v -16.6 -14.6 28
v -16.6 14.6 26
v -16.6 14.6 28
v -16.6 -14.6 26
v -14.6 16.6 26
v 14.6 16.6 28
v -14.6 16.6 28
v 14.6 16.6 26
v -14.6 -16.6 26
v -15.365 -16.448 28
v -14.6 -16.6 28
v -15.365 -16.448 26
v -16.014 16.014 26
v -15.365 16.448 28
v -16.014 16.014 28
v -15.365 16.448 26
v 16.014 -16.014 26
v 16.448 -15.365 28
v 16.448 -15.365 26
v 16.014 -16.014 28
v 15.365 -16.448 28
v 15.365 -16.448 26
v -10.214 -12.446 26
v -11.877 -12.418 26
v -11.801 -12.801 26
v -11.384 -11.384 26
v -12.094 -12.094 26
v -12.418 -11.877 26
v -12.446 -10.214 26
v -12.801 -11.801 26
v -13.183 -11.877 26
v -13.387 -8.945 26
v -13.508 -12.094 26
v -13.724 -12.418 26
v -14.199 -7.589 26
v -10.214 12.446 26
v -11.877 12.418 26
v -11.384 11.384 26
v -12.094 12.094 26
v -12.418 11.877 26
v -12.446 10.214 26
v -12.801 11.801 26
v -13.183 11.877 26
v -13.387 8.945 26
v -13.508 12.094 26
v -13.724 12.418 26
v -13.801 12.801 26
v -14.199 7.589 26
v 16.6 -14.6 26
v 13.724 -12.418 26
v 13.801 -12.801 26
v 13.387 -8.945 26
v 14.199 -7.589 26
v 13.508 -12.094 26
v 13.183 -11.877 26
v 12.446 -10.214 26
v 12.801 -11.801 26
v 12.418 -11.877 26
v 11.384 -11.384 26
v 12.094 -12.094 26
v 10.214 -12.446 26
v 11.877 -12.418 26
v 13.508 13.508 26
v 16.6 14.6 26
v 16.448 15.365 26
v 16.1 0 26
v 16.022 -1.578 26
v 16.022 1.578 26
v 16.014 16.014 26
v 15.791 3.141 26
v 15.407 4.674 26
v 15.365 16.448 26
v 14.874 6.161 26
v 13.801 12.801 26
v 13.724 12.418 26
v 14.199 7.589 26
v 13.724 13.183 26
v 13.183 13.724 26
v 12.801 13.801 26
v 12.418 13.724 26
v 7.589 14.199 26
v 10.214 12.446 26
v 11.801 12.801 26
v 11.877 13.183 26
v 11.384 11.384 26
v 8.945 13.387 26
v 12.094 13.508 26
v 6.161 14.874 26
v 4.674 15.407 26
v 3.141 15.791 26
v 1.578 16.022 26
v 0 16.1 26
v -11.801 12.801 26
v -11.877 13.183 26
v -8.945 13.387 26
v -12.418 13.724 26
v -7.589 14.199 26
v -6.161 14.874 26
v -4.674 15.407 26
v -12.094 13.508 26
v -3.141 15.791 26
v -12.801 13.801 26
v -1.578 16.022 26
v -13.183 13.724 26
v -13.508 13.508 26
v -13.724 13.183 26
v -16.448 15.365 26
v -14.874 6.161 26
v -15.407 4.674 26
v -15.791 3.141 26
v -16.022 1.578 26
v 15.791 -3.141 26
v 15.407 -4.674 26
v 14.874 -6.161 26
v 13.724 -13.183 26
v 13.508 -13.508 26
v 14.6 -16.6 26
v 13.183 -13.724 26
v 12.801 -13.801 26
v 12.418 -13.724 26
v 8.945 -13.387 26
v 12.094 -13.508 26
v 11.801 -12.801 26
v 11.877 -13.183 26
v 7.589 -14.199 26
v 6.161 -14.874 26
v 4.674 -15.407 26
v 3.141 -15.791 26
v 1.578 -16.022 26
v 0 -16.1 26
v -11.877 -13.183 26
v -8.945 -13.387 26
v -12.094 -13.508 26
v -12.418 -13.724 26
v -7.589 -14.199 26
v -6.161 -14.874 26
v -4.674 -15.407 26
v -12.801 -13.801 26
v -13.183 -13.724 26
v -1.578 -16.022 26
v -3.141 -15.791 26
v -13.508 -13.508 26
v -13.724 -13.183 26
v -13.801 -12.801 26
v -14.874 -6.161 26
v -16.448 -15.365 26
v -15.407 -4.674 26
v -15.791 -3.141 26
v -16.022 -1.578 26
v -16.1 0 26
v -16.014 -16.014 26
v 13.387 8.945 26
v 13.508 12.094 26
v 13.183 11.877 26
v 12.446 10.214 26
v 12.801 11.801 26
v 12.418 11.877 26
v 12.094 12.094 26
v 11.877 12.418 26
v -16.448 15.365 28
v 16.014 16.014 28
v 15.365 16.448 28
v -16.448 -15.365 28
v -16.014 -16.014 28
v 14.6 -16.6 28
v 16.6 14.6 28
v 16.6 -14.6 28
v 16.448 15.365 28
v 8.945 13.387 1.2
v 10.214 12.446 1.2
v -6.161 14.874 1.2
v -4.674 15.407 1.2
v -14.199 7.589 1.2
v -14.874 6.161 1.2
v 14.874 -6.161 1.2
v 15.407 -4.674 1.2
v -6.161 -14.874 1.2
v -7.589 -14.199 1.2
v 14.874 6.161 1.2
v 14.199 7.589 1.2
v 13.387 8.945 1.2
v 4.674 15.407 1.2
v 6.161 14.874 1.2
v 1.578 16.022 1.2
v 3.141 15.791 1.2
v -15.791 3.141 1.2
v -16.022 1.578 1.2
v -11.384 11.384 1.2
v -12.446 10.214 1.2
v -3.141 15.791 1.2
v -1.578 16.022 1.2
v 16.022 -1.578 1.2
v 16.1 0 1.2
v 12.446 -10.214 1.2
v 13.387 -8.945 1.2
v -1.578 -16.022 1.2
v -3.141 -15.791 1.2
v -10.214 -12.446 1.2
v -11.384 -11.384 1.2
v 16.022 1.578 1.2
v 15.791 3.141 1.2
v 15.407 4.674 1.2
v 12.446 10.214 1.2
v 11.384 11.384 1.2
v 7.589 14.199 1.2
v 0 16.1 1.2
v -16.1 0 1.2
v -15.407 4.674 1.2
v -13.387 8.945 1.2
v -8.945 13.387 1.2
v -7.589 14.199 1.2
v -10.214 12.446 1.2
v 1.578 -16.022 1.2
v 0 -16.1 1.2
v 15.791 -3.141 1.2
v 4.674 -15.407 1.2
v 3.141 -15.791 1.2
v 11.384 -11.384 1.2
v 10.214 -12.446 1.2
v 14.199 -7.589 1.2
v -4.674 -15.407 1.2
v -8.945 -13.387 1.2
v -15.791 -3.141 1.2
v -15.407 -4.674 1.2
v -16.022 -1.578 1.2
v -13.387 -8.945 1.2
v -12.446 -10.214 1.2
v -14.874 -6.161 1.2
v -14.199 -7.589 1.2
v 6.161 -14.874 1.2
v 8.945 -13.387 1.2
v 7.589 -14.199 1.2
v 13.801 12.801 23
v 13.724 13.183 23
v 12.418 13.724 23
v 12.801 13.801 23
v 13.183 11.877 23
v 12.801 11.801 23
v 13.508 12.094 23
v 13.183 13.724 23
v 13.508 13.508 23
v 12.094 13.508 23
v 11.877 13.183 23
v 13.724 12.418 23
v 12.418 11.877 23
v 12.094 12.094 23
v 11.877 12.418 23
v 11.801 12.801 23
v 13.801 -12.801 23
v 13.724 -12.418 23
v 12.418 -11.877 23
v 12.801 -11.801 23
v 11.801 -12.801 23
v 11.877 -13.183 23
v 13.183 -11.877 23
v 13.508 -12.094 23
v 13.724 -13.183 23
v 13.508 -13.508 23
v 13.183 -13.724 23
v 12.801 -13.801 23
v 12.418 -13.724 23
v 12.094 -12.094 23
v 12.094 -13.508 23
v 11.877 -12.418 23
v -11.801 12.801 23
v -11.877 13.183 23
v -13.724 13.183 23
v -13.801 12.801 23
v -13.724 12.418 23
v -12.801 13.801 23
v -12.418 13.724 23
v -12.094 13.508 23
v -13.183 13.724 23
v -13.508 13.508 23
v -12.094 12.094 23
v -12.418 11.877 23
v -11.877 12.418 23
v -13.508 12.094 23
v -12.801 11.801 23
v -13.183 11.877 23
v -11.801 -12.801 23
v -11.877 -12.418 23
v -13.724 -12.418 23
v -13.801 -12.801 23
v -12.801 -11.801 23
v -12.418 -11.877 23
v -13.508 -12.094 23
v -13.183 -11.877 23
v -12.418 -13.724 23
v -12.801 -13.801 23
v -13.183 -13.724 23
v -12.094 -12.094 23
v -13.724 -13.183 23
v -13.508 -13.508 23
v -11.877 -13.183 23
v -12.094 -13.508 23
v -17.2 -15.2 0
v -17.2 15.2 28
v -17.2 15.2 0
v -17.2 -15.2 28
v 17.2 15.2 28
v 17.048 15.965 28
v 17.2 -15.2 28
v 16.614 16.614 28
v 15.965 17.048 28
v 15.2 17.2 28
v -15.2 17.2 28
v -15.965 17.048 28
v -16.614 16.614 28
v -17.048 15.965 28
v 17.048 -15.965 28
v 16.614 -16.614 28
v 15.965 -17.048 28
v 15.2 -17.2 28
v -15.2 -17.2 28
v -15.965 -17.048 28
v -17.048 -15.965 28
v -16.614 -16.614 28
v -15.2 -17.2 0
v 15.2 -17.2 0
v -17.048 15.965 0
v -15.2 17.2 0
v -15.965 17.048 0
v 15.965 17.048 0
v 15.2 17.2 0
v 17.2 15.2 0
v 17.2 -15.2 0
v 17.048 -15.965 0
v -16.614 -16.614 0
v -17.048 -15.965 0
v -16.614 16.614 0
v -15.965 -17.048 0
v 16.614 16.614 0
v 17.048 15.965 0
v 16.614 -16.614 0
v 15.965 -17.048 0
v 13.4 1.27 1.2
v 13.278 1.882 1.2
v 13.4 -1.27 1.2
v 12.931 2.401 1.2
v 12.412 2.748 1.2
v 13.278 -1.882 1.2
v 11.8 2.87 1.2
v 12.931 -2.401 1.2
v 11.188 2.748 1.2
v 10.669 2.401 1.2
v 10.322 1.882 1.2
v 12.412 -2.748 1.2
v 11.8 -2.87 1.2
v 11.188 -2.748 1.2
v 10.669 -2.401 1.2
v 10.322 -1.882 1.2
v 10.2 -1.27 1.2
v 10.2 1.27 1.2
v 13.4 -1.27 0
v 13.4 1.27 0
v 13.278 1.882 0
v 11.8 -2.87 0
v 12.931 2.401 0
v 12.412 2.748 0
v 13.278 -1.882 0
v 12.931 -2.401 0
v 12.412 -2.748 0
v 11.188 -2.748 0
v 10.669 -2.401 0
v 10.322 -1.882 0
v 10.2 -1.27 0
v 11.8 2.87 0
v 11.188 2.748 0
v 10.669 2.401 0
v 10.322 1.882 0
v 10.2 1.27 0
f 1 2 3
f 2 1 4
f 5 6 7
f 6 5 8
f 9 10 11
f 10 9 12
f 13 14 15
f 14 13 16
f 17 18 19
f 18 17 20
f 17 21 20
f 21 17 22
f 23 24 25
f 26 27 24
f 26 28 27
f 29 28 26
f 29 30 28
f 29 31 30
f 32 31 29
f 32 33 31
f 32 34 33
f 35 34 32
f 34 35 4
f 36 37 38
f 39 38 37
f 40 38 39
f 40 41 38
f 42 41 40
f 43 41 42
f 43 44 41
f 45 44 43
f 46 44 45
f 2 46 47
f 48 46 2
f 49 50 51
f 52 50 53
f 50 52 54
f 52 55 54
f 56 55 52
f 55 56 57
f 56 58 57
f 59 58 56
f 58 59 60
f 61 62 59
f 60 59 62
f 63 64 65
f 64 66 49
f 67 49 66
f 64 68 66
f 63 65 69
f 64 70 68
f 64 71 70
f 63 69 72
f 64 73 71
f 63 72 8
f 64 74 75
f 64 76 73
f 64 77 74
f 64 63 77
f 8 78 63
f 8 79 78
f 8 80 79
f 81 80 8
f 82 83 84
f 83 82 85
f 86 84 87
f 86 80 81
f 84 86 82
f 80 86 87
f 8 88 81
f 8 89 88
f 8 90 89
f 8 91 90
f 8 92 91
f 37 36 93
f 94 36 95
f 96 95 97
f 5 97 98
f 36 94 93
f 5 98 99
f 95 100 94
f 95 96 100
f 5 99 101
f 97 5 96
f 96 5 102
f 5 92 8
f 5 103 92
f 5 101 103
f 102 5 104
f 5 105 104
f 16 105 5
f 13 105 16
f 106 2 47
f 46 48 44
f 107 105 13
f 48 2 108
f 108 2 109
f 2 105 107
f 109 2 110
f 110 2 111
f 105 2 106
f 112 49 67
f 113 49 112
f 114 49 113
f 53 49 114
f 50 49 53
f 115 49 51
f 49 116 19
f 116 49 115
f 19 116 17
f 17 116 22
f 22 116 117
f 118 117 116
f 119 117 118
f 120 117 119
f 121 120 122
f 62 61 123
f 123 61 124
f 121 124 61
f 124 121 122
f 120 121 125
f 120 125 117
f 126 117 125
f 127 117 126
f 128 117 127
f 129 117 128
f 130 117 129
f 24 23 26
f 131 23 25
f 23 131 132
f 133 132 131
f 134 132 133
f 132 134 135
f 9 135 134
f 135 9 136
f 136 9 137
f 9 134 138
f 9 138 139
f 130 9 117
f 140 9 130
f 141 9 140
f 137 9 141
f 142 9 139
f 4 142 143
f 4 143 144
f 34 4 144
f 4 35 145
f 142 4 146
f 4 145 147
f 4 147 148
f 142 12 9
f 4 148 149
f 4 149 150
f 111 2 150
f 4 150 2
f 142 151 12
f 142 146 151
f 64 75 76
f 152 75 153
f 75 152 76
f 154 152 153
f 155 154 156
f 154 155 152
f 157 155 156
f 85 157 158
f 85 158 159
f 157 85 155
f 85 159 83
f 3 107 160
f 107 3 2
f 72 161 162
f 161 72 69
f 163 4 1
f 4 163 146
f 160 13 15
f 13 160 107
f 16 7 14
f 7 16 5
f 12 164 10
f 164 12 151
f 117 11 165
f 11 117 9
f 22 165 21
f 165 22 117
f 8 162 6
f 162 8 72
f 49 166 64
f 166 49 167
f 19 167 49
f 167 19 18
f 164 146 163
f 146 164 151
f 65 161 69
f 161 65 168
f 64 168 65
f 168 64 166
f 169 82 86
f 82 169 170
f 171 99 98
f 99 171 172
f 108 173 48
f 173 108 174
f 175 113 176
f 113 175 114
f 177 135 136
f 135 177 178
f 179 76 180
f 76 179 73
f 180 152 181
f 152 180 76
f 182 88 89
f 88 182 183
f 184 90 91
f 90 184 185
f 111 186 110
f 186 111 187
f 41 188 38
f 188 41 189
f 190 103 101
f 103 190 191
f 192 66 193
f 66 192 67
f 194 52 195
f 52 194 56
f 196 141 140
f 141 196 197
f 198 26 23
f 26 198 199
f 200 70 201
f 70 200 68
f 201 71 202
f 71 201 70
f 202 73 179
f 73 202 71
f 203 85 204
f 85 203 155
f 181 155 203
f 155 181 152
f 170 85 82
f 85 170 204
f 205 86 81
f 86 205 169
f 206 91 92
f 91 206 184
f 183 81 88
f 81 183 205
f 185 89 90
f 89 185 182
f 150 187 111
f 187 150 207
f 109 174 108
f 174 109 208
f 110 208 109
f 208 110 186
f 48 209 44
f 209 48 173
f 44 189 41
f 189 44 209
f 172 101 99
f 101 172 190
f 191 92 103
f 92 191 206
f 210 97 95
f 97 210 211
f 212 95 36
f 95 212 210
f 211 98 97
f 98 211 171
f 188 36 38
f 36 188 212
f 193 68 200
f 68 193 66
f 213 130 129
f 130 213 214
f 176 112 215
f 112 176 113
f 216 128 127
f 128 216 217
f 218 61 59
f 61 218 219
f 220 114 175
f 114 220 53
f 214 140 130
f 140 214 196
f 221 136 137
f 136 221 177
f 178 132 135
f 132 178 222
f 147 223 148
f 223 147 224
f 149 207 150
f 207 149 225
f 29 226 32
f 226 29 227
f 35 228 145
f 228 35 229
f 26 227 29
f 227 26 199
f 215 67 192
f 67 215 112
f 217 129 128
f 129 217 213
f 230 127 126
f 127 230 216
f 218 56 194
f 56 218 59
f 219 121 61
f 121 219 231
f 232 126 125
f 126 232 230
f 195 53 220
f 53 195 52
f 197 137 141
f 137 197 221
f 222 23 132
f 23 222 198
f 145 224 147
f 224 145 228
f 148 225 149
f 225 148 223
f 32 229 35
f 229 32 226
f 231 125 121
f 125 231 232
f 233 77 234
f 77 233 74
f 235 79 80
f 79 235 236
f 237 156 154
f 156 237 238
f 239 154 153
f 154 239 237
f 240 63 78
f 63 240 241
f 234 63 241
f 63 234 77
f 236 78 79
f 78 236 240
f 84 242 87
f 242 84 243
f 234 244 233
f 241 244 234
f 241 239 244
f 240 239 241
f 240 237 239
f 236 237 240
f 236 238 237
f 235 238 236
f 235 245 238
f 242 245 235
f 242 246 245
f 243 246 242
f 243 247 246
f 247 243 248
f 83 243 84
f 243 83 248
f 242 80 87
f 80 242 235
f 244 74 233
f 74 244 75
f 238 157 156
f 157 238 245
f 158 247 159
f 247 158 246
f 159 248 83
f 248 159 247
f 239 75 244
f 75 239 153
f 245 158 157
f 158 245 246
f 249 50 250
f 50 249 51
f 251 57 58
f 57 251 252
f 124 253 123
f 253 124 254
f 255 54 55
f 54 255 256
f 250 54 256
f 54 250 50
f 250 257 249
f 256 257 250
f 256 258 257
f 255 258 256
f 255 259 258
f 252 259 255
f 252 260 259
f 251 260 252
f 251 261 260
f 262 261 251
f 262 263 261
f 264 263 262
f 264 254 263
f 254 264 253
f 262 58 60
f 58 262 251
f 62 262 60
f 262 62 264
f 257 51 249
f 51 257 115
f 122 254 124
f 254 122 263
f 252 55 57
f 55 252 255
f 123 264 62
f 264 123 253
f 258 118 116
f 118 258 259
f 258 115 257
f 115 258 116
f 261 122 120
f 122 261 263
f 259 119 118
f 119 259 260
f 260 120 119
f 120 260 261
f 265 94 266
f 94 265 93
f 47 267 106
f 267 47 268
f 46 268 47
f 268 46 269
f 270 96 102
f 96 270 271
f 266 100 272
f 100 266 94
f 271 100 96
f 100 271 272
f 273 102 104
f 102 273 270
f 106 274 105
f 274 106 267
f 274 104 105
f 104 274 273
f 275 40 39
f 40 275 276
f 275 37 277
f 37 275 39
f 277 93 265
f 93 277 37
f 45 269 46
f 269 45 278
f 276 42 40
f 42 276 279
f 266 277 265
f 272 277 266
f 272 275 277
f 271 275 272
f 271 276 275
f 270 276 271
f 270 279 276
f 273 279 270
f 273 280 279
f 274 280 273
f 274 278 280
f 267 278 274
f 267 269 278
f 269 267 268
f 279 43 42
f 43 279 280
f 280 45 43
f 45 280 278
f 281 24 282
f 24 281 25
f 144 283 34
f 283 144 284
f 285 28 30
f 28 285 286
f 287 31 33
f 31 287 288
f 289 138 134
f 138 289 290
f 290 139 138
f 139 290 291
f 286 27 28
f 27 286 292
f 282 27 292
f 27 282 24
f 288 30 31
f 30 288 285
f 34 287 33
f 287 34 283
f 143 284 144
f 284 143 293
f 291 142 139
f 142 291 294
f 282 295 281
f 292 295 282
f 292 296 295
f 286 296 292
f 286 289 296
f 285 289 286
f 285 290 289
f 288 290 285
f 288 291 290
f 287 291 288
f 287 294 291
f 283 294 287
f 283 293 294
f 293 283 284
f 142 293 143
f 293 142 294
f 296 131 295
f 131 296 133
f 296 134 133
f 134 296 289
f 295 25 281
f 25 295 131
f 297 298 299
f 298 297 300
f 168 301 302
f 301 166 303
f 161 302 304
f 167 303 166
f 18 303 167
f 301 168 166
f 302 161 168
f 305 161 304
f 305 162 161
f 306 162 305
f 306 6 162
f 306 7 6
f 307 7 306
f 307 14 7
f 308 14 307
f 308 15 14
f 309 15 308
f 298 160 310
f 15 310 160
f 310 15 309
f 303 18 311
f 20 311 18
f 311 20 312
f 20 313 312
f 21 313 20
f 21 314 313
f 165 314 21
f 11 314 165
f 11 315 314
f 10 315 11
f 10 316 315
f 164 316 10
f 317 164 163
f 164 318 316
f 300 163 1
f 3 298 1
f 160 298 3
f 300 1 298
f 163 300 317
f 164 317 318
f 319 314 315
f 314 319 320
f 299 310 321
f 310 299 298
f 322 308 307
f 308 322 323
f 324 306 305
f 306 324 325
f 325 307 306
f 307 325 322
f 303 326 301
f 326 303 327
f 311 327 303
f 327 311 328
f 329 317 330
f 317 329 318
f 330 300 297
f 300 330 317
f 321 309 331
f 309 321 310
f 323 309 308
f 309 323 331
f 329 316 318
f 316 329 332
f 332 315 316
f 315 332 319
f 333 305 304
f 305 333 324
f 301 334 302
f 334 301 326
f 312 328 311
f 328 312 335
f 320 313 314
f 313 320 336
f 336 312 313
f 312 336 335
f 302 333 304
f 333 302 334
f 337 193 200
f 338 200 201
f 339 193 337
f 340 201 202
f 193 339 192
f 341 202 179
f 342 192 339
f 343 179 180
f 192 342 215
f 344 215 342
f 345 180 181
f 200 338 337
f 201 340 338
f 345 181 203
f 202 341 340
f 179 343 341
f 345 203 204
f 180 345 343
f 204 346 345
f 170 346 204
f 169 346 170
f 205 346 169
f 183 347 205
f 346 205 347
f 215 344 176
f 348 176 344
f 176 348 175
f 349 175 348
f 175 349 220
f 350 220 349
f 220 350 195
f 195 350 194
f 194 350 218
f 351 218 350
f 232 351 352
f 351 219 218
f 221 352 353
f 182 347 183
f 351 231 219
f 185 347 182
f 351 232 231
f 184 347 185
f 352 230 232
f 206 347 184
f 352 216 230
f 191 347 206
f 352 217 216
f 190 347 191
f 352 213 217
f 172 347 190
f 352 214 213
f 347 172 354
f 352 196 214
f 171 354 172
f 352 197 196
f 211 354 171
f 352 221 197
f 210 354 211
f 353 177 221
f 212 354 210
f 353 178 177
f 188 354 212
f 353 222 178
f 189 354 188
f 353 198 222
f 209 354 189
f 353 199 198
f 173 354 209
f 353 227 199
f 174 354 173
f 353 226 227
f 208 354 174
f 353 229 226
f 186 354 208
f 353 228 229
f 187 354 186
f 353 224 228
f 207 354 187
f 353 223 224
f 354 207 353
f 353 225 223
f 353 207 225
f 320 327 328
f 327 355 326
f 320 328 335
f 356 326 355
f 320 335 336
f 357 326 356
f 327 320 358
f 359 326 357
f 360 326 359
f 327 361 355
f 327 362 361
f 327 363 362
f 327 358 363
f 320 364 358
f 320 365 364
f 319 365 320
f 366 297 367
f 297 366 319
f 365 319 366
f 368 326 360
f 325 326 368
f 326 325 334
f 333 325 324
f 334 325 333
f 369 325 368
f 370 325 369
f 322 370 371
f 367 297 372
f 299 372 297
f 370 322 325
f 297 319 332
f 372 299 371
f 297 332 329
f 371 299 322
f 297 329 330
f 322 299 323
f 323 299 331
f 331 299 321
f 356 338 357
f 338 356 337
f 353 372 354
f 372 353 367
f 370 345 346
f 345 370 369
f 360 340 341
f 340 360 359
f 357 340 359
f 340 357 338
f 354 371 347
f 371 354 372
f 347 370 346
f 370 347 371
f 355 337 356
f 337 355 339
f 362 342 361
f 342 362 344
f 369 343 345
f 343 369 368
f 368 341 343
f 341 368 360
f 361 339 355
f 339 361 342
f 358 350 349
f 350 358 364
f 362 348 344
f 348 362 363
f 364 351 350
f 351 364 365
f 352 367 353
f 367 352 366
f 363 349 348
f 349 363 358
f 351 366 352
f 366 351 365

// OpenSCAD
// file: speaker_stand.scad
//
// Speaker Stand
//
// by Yasuhiro Wabiko
//
// This work is licensed under a Creative Commons Attribution 4.0 International License.
// https://creativecommons.org/licenses/by/4.0/
//
use <prim.scad>

default_stand_z =40;
default_base_x = 36;
default_base_y = 36;
default_base_z = 4;
default_base_r = 2;
default_pole_r = 4; // pole body radius
default_pole_z = 36;
default_pole_rr = 1; // pole corner radius
default_joint_z = 2;
default_joint_extra_z = 0;
default_joint_r = 3;


WELDING = 0.1;

// render target; this is meant to be overriden by Makefile
TARGET="default";

//
// top level logic
//
speaker_stand_main();

module speaker_stand_main(target=TARGET){
    
    if (target == "default") {
        speaker_stand(stand_z=40, base_x=30, base_y=30, pole_r=8);
    }

    if (target == "ce32a") {
        speaker_stand(stand_z=40, base_x=(36-2)*0.8, base_y=(36-2)*0.8, pole_r=4);
    }

    if (target == "ce32a_type2") {
        speaker_stand(stand_z=40, base_x=(33.2-2)*0.8, base_y=(33.2-2)*0.8, pole_r=4);
    }

    if (target == "b1s") {
        speaker_stand(stand_z=40, base_x=(40-2)*0.8, base_y=(40-2)*0.8, pole_r=4);
    }

    if (target == "ce32a_tallboy") {
        speaker_stand(stand_z=40, base_z=0, pole_r=18, base_x=32*0.8, base_y=32*0.8);
    }

    if (target == "b1s_tallboy") {
        speaker_stand(stand_z=40, base_x=(40-2)*0.8, base_y=(40-2)*0.8, pole_r=4);
    }

}

// [Public]
// A speaker stand.
//
// stand_z = total height (= base height + pole height) i.e how high the speaker is put from the ground.
// (base_x, base_y, base_z, base_r) = stand base dimension
// (joint_z, joint_r) = joint configuration
// pole_r = pole radius
//
// NOTE: pole height is generated by total height - base_height.
module speaker_stand(stand_z = default_stand_z,
                     base_x = default_base_x,
                     base_y = default_base_y,
                     base_z = default_base_z,
                     base_r = default_base_r,
                     joint_r = default_joint_r,
                     joint_z = default_joint_z,
                     pole_r = default_pole_r,
                     pole_rr = default_pole_rr) {

    pole_z = stand_z-base_z;

    speaker_stand_unit(stand_z = stand_z,
                       base_x = base_x,
                       base_y = base_y,
                       base_z = base_z,
                       base_r = base_r,
                       joint_r = joint_r,
                       joint_z = joint_z,
                       pole_r = pole_r,
                       pole_z = pole_z,
                       pole_rr = default_pole_rr );
}

// (for testing) when you want to override design parameters in detail
module speaker_stand_unit(stand_z = default_stand_z,
                          base_x = default_base_x,
                          base_y = default_base_y,
                          base_z = default_base_z,
                          base_r = default_base_r,
                          joint_r = default_joint_r,
                          joint_z = default_joint_z,
                          joint_extra_z  = default_joint_extra_z,
                          pole_r = default_pole_r,
                          pole_z = default_pole_z,
                          pole_rr = default_pole_rr,
                          joint_fn = 32,
                          pole_fn = 64,
                          base_fn = 64,
                          clip_z = 0.6) {
    clip_r = joint_r;
    
    translate([0, 0, 0]) {
        // base plate
        translate([0, 0, base_z/2]) {
            prim_round_zplate0(base_x, base_y, base_z, base_r, base_fn);
        }

        translate([0, 0, pole_z/2]) {
            difference() {
                union() {
                    // pole (inner joint)
                    translate([0, 0, pole_z/2+joint_z/2-WELDING+clip_z/2]) {
                        cylinder(r = joint_r, $fn = joint_fn, h = joint_z+WELDING+clip_z, center=true);
                    }

                    // clip
                    translate([0, 0, pole_z/2+joint_z+clip_z/2]) {
                        minkowski() {
                            cylinder(r = clip_r, $fn = joint_fn, h = 0.2, center=true);
                            sphere(r=0.2, $fn=32);
                        }
                    }
                }
                union() {
                    // slits for easier joint 
                    translate([0, 0, pole_z/2]) {
                        for (i=[0:1:7]) {
                            rotate([0,0,45*i]) {
                                cube([8, 0.4, joint_z*6], center=true);
                            }
                        }
                    }

                    // pole (empty inside)
                    translate([0, 0, pole_z/2+joint_z/2-WELDING+clip_z/2]) {
                        //    cylinder(r = joint_r-0.5, $fn = joint_fn, h = joint_z+WELDING*4+clip_z, center=true);
                    }
                }
            } // difference

            // pole (outer)
            translate([0, 0, base_z/2-WELDING]) {
                //cylinder(r = pole_r, $fn = pole_fn, h = pole_z-base_z+WELDING, center=true);
                prim_round_zplate0(pole_r*2, pole_r*2, pole_z-base_z+WELDING, pole_rr, 32);
            }

            // pole (joint's inner stuffing for more strength)
            translate([0, 0, pole_z/2+joint_z/2-WELDING+clip_z/2]) {
                cylinder(r = clip_r-1, $fn = joint_fn, h = joint_z+WELDING+clip_z, center=true);
            }
        }
    }
}
// main file
//
// CE32A 1" Speaker Enclosure Type2 Rev.1
//
// by Yasuhiro Wabiko
//
// This work is licensed under a Creative Commons Attribution 4.0 International License.
// https://creativecommons.org/licenses/by/4.0/
//

use <speaker_stand.scad>
use <prim.scad>

// inner size of the box
size_x = 32+1.2;
size_y = 32+1.2;
size_z = 26;

// stand
stand_z = 40; // stand height

// other driver body sizes
driver_mount_thick = 2;
driver_mount_r  = 1.0;
driver_mount_r0 = 35+1.2;

// speaker wall sizes
wall_back_thick = 1.2;
wall_thick = 1.2;
wall_r = 2;

// design parameters
spfn_small  = 8;
spfn_medium = 16;
spfn_large  = 64;

// internal parameters
WELDING = 1; // offset to make sure two adjacent models welded.


// render target; this is meant to be overriden by Makefile
TARGET="default";

//
// top level logic
//
ce32a_main();

module ce32a_main(target=TARGET){
    
    if (target == "default") {
        ce32a(with_stand=0);
    }

    if (target == "with_stand") {
        ce32a(with_stand=1);
    }
}


module ce32a(with_stand=0){
    translate([0, 0, WELDING])
        ce32a_shell(size_x, size_y, size_z+WELDING, wall_r, wall_thick,
                        driver_mount_thick, driver_mount_r0, driver_mount_r,
                        spfn_small, spfn_medium, spfn_large, with_stand=with_stand);

    translate([0, 0, 0])
        #ce32a_backplate(size_x, size_y, wall_back_thick, wall_r, wall_thick,
                             driver_mount_thick, driver_mount_r0, driver_mount_r,
                             spfn_small, spfn_medium, spfn_large);

    if (with_stand) {
        translate([size_x+4,0,0]){
            speaker_stand(stand_z=40, base_x=(size_x-2)*0.8, base_y=(size_y-2)*0.8, base_z=4);
        }
    }
}


module ce32a_backplate(sx, sy, sz, wr, wt, dmt, dmr0, dmr,
                           fns, fnm, fnl){
    difference(){
        ce32a_round_hplate(sx+wt, sy+wt, sz, wr, fnm);
        #ce32a_backplate_negative_volume(sx, sy, sz, wt, fnm);
    }
}

module ce32a_backplate_negative_volume(sx, sy, sz, wt, fnm){
    // cable hole
    hull(){
        translate([sx/2+wt-6, 2.54/2, 0])
            cylinder(r=3.2/2, h=4, $fn=fnm, center=true);
        translate([sx/2+wt-6, -2.54/2, 0])
            cylinder(r=3.2/2, h=4, $fn=fnm, center=true);
    }
}

module ce32a_shell(sx, sy, sz, wr, wt, dmt, dmr0, dmr,
                       fns, fnm, fnl, with_stand=1){
    dd = dmr0/1.414/2; // 1.414 = sqrt(2); y- and z-axis distance from center to mount holes

    difference(){
        // outer shell
        ce32a_round_hplate(sx+wt, sy+wt, sz, wr, fnm);
        union() {
            // room for stuffing
            translate([0, 0, sz-dmt]) {
                ce32a_round_hplate(sx, sy, dmt+WELDING, wr, fnm);
            }

            // speaker driver hole
            translate([0, 0, 0])
                cylinder(r=32.2/2,h=sz+WELDING, $fn=fnl);

            // speaker driver mount holes
            translate([dd, dd, sz-2])
                cylinder(r=dmr, h=3*2, $fn=fnm, center=true);
            translate([dd, -dd, sz-2])
                cylinder(r=dmr, h=3*2, $fn=fnm, center=true);
            translate([-dd, dd, sz-2])
                cylinder(r=dmr, h=3*2, $fn=fnm, center=true);
            translate([-dd, -dd, sz-2])
                cylinder(r=dmr, h=3*2, $fn=fnm, center=true);

            if (with_stand) {
                translate([sx/2, 0, sz/2+wt/2]) {
                    rotate([0,90,0]) {
                        #cylinder(r = 3, $fn = 32, h = wt*4, center=true);
                    }
                }
            }
        }
    }
}


// px0,py0 = width(x-axis),height(y-axis), center at (0,0)
// pz = thickness (z-axis from z=0)
// pr = r
// fn = $fn
module ce32a_round_hplate(px0, py0, pz,  pr, pf)
{
    px = px0-pr*2;
    py = py0-pr*2;
    
    hull(){
        translate([-px/2,-py/2,0])
            cylinder(r=pr, h=pz, $fn=pf);
        translate([-px/2,+py/2,0])
            cylinder(r=pr,h=pz, $fn=pf);
        translate([+px/2,- py/2,0])
            cylinder(r=pr,h=pz, $fn=pf);
        translate([+px/2,+py/2,0])
            cylinder(r=pr, h=pz, $fn=pf);
    }
}
